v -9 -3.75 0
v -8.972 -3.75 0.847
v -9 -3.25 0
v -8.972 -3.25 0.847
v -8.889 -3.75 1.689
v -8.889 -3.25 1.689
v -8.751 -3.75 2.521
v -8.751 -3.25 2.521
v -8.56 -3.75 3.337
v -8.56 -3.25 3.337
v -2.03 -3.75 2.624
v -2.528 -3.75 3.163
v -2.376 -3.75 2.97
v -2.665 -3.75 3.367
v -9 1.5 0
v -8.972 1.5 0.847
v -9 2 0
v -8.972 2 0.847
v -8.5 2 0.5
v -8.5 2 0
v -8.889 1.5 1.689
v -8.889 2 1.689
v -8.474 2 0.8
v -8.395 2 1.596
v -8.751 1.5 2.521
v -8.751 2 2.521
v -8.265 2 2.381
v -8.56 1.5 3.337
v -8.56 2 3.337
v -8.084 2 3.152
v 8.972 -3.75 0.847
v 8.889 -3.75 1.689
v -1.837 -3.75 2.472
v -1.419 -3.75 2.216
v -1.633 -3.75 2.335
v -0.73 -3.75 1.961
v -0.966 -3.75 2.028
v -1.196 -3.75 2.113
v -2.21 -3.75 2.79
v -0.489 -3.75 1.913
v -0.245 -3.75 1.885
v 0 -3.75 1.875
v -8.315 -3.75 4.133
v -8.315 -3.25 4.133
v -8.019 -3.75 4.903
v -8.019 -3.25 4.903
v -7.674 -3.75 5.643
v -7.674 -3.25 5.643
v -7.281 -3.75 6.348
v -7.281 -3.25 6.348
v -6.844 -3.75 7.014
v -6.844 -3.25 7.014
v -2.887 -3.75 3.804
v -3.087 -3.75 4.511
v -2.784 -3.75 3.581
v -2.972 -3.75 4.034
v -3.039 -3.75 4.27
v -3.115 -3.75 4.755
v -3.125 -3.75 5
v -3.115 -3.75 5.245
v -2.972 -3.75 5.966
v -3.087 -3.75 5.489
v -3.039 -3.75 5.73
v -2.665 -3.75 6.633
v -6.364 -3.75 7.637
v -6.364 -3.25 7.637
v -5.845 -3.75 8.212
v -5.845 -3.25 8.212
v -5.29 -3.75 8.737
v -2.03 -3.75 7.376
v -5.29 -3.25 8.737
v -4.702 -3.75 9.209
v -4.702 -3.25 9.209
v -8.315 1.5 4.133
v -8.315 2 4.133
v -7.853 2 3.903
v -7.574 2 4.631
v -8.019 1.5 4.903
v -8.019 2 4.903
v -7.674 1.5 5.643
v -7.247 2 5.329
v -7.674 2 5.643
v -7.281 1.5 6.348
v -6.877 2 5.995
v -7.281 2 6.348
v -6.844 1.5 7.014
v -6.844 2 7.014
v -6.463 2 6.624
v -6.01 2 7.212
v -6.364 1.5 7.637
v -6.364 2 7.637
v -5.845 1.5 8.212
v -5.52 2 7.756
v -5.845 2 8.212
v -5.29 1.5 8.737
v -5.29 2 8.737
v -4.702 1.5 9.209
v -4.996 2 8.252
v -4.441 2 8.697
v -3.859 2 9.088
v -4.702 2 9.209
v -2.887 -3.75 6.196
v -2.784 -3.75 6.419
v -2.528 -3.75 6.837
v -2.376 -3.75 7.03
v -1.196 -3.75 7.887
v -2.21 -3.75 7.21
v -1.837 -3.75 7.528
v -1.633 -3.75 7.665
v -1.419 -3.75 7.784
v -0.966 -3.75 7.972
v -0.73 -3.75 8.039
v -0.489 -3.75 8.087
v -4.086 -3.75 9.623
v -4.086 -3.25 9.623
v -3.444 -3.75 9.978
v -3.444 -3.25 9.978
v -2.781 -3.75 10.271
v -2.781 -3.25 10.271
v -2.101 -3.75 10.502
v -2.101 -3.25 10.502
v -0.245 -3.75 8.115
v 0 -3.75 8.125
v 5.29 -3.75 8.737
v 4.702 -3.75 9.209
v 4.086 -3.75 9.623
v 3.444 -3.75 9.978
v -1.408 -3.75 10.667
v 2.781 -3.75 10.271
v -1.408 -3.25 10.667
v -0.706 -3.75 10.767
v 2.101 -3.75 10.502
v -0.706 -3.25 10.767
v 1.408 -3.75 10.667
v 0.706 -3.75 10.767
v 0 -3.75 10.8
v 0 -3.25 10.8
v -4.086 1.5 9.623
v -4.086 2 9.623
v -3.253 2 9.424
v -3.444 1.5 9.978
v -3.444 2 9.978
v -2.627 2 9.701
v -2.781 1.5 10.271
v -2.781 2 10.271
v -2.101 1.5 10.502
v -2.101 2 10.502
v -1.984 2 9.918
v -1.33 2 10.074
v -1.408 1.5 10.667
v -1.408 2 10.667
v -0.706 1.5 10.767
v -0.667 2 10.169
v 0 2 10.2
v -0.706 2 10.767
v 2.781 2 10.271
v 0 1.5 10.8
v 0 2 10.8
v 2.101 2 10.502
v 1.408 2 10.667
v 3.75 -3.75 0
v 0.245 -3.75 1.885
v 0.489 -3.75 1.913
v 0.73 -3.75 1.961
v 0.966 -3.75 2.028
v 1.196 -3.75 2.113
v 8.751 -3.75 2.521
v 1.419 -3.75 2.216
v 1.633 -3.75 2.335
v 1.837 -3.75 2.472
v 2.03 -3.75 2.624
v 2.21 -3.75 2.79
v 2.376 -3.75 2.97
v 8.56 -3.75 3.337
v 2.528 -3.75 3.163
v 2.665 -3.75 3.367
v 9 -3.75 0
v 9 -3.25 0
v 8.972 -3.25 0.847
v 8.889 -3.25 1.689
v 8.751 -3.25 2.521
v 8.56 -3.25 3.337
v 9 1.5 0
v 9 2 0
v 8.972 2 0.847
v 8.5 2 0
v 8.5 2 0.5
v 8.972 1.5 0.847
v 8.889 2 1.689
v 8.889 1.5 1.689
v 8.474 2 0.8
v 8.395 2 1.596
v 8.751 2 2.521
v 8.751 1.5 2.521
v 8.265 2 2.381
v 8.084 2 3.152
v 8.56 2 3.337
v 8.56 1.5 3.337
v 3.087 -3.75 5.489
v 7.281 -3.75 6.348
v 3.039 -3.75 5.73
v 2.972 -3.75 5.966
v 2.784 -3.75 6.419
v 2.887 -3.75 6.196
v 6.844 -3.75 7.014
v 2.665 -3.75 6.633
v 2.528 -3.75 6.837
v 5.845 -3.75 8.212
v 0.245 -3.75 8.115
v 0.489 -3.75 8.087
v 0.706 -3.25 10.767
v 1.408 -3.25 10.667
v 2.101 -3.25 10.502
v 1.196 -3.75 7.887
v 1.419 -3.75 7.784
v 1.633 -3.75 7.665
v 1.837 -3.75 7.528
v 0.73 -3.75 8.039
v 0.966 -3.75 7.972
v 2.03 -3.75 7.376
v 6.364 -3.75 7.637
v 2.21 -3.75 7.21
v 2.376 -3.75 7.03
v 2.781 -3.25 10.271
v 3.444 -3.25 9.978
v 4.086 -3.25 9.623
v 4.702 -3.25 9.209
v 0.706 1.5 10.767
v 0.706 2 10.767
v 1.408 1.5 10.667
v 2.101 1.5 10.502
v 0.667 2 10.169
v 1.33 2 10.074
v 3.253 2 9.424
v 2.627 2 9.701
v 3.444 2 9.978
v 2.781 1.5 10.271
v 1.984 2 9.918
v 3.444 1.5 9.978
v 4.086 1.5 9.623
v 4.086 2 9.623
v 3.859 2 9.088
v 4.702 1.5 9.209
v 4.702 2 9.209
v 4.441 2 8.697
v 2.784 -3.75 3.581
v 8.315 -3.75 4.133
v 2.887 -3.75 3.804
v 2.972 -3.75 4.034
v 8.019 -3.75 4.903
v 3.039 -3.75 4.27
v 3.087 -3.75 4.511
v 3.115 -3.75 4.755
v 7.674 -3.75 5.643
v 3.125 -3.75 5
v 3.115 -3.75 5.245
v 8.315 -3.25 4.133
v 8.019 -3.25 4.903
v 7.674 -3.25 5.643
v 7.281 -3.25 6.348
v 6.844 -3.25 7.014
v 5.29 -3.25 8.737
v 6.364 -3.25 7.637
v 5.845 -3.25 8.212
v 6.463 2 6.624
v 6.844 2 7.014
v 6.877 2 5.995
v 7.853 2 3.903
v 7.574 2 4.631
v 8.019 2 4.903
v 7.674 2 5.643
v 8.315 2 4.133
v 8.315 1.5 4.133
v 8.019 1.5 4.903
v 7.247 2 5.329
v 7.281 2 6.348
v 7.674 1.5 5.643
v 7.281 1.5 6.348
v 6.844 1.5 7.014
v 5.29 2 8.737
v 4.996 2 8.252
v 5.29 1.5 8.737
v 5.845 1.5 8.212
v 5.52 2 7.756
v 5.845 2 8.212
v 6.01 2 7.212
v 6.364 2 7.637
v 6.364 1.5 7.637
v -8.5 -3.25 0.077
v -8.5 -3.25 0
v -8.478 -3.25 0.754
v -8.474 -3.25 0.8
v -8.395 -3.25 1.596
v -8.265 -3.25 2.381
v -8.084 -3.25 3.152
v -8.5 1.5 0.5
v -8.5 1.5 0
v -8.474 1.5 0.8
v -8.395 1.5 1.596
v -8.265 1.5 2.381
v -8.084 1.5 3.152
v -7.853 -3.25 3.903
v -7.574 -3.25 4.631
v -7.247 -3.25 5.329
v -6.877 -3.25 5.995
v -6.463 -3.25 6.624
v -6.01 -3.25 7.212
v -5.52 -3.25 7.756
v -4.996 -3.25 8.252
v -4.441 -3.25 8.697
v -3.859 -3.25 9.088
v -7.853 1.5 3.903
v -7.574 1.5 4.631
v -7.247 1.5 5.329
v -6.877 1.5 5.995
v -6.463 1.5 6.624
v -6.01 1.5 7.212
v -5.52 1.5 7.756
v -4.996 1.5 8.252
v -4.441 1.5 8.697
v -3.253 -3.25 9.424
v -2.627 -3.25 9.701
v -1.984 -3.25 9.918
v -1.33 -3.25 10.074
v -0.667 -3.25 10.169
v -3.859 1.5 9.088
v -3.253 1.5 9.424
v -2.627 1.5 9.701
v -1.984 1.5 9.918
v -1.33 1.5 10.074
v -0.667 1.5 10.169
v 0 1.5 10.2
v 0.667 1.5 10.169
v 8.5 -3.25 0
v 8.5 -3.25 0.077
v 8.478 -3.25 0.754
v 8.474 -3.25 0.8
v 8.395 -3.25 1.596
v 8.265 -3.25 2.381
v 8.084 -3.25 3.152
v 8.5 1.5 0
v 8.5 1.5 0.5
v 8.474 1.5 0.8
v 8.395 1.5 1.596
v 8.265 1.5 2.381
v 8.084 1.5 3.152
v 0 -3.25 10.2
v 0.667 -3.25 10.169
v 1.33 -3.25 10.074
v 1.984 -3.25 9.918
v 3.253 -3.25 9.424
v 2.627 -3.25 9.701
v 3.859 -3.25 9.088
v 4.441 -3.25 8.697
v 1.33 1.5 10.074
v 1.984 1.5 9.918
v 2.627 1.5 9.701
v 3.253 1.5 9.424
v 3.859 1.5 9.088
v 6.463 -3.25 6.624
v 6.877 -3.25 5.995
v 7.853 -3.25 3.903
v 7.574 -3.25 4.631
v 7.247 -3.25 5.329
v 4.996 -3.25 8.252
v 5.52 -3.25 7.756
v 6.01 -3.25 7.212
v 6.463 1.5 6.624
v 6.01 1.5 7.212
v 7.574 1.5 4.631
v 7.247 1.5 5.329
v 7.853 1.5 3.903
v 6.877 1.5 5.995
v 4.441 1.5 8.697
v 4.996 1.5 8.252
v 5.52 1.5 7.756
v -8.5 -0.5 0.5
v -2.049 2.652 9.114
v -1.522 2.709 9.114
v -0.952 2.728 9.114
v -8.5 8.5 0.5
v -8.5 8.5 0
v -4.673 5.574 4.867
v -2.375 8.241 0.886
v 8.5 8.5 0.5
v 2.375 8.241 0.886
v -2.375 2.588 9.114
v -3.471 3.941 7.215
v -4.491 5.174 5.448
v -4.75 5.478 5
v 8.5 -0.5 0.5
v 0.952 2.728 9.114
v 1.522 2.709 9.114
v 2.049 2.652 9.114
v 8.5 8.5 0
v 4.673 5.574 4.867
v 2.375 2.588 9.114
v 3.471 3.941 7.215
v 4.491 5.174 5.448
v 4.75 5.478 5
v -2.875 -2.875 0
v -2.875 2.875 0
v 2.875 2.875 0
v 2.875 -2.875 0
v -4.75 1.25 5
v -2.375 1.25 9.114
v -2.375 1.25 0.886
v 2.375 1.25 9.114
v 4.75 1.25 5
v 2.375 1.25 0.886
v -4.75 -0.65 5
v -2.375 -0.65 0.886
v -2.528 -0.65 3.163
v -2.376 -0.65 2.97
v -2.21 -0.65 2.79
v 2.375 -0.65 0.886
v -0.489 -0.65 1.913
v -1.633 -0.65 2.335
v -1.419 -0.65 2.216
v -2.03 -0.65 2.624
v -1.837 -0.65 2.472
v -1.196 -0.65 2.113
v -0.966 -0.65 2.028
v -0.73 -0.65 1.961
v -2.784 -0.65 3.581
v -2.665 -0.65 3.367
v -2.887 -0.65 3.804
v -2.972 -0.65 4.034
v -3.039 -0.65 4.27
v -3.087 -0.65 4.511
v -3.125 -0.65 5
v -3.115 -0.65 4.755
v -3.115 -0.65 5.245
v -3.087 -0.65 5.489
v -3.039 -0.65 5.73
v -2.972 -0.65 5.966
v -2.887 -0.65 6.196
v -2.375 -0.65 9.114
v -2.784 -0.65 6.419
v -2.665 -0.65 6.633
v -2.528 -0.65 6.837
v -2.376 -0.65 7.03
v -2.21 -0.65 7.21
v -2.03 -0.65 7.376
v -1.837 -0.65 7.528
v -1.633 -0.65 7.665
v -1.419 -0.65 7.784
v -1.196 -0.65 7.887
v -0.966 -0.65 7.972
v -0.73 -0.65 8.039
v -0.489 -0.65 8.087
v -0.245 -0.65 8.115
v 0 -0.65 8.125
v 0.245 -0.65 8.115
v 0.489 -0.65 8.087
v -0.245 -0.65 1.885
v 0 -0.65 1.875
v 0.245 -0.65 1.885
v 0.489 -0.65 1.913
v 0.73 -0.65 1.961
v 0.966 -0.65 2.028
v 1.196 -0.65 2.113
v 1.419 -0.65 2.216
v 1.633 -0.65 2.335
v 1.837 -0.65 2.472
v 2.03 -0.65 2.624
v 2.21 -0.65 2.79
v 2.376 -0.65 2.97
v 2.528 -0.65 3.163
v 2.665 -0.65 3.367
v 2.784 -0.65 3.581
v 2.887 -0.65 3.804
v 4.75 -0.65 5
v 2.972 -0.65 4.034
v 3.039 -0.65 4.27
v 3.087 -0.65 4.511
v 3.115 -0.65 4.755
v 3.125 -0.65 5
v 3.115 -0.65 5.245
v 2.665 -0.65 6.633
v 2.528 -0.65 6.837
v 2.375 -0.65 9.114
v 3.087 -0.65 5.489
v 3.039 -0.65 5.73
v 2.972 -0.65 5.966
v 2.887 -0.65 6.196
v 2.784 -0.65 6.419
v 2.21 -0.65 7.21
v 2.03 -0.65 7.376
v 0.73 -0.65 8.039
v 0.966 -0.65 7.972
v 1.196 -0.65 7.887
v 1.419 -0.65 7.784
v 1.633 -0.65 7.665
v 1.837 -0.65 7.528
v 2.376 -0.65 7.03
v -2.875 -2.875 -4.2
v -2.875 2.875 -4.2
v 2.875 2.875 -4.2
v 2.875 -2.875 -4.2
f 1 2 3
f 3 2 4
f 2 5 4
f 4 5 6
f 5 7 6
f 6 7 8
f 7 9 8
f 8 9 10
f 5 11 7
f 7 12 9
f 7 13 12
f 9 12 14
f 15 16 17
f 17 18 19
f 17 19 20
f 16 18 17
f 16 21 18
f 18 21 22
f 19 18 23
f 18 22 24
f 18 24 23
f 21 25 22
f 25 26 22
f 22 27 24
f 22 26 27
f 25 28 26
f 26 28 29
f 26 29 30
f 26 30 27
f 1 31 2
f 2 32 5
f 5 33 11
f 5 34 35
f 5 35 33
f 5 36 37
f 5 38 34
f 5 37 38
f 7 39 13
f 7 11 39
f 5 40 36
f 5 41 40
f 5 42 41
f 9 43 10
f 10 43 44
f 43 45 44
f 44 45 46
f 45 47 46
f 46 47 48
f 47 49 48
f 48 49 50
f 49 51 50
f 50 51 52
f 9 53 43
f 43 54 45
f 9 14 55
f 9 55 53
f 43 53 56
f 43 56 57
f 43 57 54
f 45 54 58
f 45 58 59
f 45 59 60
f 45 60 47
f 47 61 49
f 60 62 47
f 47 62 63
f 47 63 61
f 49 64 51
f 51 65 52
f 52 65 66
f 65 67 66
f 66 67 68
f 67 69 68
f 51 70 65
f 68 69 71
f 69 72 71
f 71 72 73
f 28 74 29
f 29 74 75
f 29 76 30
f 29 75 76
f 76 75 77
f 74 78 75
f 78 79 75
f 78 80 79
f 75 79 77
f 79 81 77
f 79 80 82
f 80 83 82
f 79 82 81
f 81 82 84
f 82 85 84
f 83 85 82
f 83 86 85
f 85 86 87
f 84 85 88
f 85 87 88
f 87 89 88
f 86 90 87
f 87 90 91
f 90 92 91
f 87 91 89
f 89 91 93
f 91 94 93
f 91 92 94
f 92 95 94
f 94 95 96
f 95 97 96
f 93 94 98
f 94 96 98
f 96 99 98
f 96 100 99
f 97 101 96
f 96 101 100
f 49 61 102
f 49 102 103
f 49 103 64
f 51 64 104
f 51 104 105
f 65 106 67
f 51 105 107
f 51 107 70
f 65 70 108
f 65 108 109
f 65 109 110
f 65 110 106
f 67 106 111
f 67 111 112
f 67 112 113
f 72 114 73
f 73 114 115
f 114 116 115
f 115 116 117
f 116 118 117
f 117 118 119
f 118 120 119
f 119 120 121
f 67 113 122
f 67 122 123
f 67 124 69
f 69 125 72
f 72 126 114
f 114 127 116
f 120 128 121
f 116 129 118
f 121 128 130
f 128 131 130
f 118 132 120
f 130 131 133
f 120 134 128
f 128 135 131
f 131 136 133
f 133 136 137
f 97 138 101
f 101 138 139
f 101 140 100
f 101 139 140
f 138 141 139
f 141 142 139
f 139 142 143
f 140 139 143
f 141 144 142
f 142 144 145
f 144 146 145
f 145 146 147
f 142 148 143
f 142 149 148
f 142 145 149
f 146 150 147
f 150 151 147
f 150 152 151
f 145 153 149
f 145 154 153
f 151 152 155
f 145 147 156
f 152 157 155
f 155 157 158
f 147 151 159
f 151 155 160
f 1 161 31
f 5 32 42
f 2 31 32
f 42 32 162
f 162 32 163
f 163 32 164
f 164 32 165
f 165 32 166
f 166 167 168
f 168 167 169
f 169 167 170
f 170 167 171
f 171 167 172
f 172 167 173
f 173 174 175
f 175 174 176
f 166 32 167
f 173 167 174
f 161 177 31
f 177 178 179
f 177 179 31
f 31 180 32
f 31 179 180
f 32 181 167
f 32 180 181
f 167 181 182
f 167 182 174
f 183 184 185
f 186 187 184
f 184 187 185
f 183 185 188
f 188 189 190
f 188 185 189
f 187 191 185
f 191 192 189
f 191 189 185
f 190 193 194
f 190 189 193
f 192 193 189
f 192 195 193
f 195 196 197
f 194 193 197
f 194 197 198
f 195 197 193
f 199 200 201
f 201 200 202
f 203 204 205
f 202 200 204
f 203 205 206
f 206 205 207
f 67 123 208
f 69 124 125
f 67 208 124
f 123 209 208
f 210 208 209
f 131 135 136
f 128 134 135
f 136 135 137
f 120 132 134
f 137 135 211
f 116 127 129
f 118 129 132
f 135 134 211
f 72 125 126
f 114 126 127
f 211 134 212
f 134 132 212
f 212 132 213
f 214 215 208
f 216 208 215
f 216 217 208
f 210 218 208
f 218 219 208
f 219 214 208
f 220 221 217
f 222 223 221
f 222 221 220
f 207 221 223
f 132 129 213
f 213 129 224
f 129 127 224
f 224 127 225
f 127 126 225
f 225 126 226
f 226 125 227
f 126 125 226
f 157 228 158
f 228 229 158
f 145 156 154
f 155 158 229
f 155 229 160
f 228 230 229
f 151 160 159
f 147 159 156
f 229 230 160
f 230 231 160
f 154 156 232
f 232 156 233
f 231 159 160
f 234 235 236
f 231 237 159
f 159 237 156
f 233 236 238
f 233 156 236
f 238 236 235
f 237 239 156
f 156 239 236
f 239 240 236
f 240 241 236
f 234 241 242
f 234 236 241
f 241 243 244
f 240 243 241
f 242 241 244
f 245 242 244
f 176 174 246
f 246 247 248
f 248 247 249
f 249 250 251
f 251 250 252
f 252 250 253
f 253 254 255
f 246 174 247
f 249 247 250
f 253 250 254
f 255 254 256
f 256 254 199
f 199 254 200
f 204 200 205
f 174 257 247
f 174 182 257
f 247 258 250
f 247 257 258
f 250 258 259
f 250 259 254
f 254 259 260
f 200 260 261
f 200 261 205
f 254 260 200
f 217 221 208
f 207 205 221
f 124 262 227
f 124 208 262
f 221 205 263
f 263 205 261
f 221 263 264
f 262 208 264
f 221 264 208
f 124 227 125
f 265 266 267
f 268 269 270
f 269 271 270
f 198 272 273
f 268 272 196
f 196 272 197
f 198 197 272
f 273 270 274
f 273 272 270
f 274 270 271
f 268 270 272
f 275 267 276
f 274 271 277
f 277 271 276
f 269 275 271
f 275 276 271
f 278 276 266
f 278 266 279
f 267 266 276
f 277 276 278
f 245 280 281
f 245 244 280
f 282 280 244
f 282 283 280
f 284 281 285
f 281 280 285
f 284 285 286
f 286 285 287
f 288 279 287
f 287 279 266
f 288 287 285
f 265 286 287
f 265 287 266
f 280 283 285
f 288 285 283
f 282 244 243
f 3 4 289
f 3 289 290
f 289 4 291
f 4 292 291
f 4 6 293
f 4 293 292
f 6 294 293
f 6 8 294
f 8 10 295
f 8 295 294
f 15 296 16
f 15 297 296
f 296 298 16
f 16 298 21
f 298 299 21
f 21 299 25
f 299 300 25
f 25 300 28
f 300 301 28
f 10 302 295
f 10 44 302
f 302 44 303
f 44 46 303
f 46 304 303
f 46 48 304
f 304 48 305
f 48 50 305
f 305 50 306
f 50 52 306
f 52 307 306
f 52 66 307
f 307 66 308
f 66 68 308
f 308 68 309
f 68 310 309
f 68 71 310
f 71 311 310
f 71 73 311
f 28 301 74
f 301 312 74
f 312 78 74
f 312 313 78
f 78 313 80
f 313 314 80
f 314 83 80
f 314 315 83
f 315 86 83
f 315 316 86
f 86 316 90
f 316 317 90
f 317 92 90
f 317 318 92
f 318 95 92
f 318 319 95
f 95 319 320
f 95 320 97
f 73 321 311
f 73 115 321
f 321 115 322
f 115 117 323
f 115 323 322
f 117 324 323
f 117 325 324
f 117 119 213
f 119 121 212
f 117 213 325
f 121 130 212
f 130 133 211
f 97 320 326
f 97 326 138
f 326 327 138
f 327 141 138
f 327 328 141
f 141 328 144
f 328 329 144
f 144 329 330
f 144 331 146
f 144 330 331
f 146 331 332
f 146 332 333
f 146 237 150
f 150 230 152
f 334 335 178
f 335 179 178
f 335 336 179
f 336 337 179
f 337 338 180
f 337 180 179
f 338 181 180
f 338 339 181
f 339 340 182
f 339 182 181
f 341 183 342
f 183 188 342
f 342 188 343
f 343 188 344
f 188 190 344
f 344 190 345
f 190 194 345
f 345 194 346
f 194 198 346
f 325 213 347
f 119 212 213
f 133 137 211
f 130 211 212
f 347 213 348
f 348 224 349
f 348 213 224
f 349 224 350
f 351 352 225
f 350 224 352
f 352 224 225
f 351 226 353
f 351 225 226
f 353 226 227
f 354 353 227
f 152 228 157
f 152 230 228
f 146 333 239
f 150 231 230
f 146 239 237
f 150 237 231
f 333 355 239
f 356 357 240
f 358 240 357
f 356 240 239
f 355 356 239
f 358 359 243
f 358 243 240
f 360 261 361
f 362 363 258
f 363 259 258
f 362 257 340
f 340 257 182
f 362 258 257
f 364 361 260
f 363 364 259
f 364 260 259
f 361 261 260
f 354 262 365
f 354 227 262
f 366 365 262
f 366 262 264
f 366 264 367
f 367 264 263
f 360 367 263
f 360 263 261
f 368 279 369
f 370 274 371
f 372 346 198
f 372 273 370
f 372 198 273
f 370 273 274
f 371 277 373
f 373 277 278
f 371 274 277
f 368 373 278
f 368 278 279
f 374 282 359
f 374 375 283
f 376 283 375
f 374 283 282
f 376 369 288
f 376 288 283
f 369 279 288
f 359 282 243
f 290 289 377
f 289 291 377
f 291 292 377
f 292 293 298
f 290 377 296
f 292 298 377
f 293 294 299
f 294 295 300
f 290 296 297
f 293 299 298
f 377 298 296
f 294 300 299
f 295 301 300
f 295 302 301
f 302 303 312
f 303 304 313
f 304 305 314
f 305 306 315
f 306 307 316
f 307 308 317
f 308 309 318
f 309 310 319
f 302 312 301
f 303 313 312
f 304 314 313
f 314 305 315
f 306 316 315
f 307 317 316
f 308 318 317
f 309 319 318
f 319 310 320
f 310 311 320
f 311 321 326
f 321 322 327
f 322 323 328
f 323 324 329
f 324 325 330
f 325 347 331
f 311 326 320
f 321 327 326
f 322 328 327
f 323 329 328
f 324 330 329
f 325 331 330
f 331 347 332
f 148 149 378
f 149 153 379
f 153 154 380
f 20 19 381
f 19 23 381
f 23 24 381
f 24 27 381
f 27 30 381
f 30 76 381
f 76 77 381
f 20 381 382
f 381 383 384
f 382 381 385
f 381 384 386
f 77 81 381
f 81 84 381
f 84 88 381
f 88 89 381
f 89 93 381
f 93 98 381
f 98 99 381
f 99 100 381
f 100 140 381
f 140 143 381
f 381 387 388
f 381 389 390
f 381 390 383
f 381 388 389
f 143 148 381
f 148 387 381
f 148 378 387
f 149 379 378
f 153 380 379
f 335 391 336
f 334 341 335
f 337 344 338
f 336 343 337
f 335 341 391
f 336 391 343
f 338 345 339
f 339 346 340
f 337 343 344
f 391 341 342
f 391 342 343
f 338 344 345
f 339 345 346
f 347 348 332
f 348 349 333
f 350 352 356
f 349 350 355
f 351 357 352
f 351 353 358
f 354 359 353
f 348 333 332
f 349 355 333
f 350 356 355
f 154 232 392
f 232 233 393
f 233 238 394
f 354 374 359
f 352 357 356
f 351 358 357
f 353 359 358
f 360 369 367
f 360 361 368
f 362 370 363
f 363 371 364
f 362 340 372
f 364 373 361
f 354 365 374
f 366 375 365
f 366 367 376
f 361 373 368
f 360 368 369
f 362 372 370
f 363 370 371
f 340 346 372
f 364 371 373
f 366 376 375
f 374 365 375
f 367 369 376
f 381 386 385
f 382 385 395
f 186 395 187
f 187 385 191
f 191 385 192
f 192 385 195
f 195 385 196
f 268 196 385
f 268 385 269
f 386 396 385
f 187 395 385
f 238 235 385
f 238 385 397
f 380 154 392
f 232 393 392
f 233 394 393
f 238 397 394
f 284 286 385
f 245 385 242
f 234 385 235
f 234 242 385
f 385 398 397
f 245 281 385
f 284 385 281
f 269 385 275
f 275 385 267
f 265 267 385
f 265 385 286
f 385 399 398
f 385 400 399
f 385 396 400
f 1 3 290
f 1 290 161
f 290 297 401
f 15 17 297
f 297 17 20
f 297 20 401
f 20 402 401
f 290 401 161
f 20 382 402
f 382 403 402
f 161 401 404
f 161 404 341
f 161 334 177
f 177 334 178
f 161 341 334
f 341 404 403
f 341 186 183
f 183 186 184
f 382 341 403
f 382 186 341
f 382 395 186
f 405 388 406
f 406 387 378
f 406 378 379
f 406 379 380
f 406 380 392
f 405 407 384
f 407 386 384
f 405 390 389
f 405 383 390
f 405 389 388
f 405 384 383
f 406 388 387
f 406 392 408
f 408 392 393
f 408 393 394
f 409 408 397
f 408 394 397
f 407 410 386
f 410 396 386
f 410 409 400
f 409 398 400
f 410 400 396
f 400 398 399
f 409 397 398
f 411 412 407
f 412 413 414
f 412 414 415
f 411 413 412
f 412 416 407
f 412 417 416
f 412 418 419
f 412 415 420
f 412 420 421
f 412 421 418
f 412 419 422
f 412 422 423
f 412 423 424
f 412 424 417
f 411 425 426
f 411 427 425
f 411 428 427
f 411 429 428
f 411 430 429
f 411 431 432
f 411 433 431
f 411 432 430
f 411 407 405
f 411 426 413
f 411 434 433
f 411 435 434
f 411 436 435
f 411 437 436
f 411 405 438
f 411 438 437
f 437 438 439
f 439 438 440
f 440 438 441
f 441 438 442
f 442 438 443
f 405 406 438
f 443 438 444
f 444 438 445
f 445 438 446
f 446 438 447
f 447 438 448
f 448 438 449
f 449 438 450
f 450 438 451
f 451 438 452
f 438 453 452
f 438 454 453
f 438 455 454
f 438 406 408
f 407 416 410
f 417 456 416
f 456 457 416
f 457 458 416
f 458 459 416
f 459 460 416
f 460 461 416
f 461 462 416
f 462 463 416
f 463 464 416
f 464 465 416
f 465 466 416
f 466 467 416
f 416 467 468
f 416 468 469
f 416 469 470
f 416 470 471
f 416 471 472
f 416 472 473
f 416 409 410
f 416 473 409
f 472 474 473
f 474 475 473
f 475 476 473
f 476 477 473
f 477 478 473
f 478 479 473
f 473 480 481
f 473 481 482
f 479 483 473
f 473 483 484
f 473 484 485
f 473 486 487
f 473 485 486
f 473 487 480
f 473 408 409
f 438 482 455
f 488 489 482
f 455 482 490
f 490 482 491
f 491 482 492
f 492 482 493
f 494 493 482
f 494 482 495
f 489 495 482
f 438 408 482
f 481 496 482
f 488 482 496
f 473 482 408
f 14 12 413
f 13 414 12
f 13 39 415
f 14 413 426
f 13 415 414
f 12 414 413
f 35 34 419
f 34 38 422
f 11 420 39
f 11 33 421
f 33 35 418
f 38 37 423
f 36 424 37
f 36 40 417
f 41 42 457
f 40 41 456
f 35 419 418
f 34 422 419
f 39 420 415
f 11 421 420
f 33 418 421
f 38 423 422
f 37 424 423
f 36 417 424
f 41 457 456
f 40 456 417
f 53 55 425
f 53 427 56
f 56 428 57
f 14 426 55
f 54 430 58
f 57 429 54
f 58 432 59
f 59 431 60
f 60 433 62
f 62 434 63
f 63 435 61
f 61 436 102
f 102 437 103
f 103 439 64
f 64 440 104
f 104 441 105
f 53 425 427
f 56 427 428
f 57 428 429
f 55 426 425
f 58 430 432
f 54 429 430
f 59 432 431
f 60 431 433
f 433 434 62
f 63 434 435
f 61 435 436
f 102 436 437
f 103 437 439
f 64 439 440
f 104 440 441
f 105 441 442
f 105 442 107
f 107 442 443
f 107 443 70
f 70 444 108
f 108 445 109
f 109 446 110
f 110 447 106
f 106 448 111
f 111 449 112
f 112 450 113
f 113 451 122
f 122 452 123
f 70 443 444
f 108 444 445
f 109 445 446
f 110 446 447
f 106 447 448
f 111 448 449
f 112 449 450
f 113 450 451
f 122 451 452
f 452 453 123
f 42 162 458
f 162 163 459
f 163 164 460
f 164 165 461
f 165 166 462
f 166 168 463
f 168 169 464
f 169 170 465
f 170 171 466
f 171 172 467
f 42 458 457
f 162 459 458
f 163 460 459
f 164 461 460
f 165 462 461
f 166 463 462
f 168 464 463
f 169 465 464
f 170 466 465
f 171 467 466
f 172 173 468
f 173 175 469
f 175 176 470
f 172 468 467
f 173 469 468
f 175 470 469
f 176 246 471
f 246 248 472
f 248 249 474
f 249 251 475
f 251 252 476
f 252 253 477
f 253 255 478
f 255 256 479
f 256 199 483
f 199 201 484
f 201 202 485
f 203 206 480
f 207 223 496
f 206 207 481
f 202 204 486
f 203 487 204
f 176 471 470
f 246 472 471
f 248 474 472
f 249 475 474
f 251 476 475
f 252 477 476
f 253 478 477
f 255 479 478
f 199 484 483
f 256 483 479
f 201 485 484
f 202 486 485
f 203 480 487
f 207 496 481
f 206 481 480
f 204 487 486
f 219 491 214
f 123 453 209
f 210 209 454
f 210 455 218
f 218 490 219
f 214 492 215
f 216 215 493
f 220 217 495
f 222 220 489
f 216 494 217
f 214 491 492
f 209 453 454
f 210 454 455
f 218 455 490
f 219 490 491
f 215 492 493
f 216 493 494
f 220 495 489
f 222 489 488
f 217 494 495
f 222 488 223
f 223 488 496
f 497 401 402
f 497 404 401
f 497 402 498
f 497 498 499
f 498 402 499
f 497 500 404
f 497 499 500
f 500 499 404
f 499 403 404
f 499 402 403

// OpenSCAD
$fn=80;

//cube([17,17,4], center=true);

//translate([0,0,0]) cube([5.75,5.75,8.2], center=true);
//
//translate([0,4.5/2,6/2]) {
//    rotate([90,0,0]) {
//        difference() {
//            cylinder(d=8,h=4.5);
//            cylinder(d=6.5,h=10);
//        }
//    }
//}

module bulkHead() {
    translate([0,1.25,5]) rotate([90,0,0]) {
        translate([0,0,-8]) cylinder(d=9.5,h=8,$fn=6);
        
        cylinder(d=9.5,h=1.9,$fn=6);
        translate([0,0,1.9]) cylinder(d=6.25,h=11);
        
        translate([0,0,5.8]) {
            cylinder(d=7.75,h=11.35);
            translate([0,0,2.65]) cylinder(d=9,h=5.8,$fn=6);
        }
    }
}

module basePlate() {
    translate([0,0,10/2]) cube([11,5.75,10], center=true);
}

module bottomPeg() {
    translate([0,0,-4.2/2]) cube([5.75,5.75,4.2], center=true);
}

module strapSpace() {
//    cylinder(d=17, h=2.75+1);
    translate([0,-1,0]) rotate([-45,0,90]) rotate([0,90,0]) {
        intersection () {
            minkowski() {
                size=8;
                cube([size-(size/2),size-(size/2),5.75], center=true);
                sphere(d=size+3);
            }
            cube([170,170,5.75], center=true);
        }
    }
}

module strapSpace2() {

    module rim() {
        difference() {
            scale([1,1,1.2]) translate([0,2,0]) rotate([90,0,0]) cylinder(d=18,h=5.75);
            scale([1,1,1.2]) translate([0,1.5,0]) rotate([90,0,0]) cylinder(d=20,h=4.75);
        }
    }
    
    module body() {
        hull() {
            scale([1,1,1.2]) translate([0,2,0]) rotate([90,0,0]) cylinder(d=17,h=5.75);
            translate([0,4,0]) cube([17,9,1], center=true);
        }
    }
    
    difference() {
        union() {
            body();
            rim();
        }
        translate([0,0,-50/2]) cube([50,50,50], center=true);
    }
}


difference() {
    strapSpace2();
    //basePlate();
    bulkHead();
}
bottomPeg();

%translate([0,0,-1/2]) cube([17,17,1], center=true);
%bulkHead();
